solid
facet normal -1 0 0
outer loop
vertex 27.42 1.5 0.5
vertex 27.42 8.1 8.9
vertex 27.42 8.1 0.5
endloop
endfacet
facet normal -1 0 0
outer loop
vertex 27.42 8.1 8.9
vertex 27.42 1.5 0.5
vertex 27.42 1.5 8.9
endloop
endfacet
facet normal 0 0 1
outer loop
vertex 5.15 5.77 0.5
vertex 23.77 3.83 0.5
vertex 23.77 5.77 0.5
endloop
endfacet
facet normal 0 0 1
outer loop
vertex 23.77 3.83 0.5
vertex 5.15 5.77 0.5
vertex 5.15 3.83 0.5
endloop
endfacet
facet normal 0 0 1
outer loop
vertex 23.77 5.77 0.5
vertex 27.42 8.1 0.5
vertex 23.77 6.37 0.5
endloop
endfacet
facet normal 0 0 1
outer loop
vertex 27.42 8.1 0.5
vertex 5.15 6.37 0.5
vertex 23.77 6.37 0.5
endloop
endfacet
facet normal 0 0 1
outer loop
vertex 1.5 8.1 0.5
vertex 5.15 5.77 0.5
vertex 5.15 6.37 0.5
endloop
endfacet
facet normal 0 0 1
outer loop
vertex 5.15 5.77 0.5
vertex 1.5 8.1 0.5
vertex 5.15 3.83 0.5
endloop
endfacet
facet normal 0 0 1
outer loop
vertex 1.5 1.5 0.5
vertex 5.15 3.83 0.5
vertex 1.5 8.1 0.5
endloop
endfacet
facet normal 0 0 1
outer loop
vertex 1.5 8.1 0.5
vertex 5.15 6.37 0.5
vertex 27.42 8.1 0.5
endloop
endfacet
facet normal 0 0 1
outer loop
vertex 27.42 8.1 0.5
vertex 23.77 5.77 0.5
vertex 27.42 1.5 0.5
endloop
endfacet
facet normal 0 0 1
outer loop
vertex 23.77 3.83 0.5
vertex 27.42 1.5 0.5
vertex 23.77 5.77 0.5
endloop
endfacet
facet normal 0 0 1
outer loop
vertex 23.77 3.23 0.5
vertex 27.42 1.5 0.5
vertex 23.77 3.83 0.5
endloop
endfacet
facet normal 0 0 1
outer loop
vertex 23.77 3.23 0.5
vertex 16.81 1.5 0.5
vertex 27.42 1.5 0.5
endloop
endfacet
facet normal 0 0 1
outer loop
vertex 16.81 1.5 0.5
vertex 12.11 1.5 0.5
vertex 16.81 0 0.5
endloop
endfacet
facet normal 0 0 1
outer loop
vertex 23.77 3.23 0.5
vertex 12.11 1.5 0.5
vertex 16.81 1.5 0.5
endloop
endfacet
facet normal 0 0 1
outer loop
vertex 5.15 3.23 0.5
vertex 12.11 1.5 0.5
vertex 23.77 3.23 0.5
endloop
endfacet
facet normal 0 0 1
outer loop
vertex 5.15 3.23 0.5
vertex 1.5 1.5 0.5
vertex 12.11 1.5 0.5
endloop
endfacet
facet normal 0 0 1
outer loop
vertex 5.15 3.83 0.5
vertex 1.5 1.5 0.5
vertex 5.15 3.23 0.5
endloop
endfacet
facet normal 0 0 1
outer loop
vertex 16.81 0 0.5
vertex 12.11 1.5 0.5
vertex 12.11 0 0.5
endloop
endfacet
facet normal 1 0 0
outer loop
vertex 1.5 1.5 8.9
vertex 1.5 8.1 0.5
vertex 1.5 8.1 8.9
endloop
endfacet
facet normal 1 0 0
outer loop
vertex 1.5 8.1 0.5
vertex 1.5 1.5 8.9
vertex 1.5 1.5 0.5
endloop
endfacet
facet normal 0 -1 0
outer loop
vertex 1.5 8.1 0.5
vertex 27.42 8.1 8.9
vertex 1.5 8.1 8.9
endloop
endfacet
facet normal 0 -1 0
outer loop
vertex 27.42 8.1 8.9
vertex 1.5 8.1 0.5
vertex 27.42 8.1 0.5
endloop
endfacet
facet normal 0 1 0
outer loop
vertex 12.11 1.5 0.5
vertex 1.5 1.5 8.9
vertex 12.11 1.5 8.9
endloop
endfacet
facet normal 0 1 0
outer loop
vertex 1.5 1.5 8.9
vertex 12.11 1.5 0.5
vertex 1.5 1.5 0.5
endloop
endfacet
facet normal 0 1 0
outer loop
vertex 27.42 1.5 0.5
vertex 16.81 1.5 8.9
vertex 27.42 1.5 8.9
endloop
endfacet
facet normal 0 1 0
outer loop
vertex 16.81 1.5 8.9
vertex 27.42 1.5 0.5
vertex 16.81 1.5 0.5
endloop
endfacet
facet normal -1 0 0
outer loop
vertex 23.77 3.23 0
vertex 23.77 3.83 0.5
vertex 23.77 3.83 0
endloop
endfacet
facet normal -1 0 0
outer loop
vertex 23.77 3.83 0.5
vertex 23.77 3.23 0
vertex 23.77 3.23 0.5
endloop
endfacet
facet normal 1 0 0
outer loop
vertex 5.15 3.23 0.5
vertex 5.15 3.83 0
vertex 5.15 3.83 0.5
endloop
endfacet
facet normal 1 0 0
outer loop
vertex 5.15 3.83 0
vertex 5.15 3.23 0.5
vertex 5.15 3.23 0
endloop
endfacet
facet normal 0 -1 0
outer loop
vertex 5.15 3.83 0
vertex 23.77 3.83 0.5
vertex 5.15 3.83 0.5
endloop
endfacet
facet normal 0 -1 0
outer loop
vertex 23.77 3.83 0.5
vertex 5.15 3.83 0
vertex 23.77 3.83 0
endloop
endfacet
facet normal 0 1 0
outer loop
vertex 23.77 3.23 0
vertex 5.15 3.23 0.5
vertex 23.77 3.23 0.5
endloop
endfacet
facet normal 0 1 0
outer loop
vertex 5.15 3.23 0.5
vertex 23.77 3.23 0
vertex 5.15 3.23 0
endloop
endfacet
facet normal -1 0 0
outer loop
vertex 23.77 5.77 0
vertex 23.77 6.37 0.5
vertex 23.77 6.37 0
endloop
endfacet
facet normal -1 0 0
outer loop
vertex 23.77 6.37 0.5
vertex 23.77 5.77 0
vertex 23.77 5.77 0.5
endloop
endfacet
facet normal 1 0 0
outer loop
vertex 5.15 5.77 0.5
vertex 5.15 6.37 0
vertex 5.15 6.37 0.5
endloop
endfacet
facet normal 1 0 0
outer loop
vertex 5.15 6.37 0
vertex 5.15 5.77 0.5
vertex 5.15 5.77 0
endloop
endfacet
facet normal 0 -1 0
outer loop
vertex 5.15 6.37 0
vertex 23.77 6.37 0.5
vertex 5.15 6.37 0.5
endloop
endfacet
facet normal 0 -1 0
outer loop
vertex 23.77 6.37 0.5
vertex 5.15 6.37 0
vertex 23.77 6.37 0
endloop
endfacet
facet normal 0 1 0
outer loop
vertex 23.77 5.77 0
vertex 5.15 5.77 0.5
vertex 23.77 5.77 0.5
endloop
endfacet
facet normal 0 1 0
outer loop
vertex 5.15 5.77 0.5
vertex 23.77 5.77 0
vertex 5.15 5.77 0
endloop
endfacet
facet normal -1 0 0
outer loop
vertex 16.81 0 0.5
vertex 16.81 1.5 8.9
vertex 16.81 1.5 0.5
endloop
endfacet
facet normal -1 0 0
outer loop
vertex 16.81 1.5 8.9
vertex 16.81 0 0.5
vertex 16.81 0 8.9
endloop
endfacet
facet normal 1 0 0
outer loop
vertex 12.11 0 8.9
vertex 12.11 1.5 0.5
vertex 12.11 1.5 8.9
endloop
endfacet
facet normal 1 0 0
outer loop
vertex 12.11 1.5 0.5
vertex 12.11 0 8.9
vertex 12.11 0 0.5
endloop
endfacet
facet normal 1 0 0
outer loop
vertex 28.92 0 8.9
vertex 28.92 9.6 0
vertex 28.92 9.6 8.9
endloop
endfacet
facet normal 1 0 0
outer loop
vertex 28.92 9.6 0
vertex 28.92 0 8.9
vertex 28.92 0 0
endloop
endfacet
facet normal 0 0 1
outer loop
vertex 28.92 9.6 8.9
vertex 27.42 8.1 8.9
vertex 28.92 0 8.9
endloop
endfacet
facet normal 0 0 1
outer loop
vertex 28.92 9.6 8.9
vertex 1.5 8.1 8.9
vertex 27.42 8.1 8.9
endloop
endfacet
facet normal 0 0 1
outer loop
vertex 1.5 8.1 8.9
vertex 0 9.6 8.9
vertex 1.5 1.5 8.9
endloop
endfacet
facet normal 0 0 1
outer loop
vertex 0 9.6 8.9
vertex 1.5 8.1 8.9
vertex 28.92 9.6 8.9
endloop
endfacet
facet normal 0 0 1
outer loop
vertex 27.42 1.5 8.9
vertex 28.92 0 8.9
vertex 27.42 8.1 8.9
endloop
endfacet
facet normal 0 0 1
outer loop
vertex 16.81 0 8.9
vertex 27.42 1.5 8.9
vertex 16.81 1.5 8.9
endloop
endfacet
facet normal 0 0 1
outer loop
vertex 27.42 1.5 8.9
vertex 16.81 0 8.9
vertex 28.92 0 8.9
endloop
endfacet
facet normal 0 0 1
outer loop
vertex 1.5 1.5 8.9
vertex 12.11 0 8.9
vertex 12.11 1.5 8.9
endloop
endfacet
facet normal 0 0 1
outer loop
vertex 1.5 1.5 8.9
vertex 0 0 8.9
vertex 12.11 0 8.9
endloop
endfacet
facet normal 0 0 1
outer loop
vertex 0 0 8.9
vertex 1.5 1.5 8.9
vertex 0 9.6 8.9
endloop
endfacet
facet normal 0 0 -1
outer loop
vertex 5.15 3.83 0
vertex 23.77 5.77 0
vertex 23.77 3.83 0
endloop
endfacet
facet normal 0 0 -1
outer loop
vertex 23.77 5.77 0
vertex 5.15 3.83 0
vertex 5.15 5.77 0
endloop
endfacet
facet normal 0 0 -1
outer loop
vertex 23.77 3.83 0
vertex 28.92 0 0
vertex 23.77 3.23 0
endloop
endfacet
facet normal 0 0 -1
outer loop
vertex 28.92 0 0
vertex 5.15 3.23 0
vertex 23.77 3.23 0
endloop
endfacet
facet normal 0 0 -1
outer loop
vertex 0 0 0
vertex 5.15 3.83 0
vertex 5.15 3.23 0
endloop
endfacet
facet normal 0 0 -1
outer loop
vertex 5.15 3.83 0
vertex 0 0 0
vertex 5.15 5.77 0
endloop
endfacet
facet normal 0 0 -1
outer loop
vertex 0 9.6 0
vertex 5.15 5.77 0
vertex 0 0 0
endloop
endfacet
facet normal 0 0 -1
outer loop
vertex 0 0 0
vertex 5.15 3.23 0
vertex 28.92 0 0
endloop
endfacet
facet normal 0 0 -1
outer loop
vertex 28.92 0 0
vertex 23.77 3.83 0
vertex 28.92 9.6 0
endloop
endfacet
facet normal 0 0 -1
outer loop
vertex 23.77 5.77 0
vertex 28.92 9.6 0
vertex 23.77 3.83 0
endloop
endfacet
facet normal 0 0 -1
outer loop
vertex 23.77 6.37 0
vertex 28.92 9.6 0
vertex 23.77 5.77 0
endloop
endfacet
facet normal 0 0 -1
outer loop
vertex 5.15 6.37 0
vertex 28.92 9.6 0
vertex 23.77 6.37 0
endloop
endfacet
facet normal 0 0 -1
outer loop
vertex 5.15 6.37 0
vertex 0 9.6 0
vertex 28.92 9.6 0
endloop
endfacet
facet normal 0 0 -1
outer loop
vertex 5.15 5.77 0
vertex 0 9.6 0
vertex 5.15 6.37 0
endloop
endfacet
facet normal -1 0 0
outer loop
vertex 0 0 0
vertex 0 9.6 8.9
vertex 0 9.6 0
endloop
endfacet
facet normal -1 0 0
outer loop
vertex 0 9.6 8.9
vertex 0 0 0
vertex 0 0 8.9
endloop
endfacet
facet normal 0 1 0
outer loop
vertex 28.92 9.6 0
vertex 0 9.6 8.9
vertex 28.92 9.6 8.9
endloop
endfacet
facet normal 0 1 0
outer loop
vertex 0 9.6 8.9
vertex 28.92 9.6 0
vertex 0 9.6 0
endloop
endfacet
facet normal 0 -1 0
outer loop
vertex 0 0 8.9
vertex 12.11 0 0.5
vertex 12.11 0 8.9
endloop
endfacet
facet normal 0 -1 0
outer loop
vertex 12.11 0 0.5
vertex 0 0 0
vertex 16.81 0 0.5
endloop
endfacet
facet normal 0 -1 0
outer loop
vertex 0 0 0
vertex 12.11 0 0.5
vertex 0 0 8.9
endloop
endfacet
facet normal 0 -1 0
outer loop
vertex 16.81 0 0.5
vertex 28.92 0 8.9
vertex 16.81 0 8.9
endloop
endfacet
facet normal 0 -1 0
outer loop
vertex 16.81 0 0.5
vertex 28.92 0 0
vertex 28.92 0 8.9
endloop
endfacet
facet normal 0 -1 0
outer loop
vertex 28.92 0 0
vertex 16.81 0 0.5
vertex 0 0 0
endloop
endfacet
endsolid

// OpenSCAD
// IDC box connector frame for pin headers - WITH CENTER DIVIDER
// Based on design by John Stäck 2018
// Licensed under Creative Commons Attribution Share-alike 4.0 (CC BY-SA 4.0)
// https://creativecommons.org/licenses/by-sa/4.0/
//
// Modifications:
// - Changed bottom_thickness to 0.5mm
// - Added center divider on bottom surface

//Number of pins in one row of connector (half number of total pins)
n_pins = 8;

//How much to increase size of things to allow for good fit
printer_fudge = 0.2;

//Standard pin pitch
pin_pitch = 2.54;

//Pin size from C5383092 datasheet (SQ.0.64)
pin_size = 0.64;

//Tight clearance for 3D printed plastic (press-fit)
tight_clearance = 0.2;

//Dimensions of IDC connector
connector_length = 5.4+pin_pitch*n_pins;
connector_width = 6.4;

//Size of pin header base holes - TIGHT FIT based on actual pin dimensions
//Length: pin span + pin size + clearance
base_length = pin_pitch*(n_pins-1) + pin_size + tight_clearance;  // 17.78 + 0.64 + 0.2 = 18.62mm
//Width of each slot
slot_width = 0.6;  // Adjusted after print test (0.4 was too tight)

//Size of orientation tab
tab_width=4.5;
tab_height=5.5; //Arbitrary number. Have no specs on this

//Height of standard IDC box header.
height=8.9;

//The height of a regular pin header plastic base
// MODIFIED: Changed from pin_pitch (2.54mm) to 0.5mm
bottom_thickness=0.5;


//These are default sizes for the outside of the box
/*
outside_length = 7.6+pin_pitch*n_pins;
outside_width = 8.8;
*/

//Outside dimensions, a bit thicker for more sturdiness when printed.
wall_thickness = 1.5;

outside_length = connector_length + 2*wall_thickness + printer_fudge;
outside_width = connector_width + 2*wall_thickness + printer_fudge;

conn_length_actual = connector_length + printer_fudge;
conn_width_actual = connector_width + printer_fudge;

tab_width_actual = tab_width + printer_fudge;

// ADDED: Center divider - calculated from row spacing minus slot widths
// Divider fills the gap between the two pin row slots
divider_thickness = pin_pitch - slot_width;  // 2.54 - 0.84 = 1.7mm


difference() {
    cube([outside_length, outside_width, height]);

    //All the things "cut out" are from center origin to make things easier to follow
    translate([outside_length/2, outside_width/2, 0]) {

        //Hole for connector (single open cavity above bottom plate)
        translate([-conn_length_actual/2, -conn_width_actual/2, bottom_thickness])
            cube([conn_length_actual, conn_width_actual, height]);

        //Hole for pin header in base - ROW 1 (tight slot for first pin row)
        // Centered at -pin_pitch/2 from center (Y offset = -1.27mm)
        translate([-base_length/2, -pin_pitch/2 - slot_width/2, -0.1])
            cube([base_length, slot_width, bottom_thickness + 0.2]);

        //Hole for pin header in base - ROW 2 (tight slot for second pin row)
        // Centered at +pin_pitch/2 from center (Y offset = +1.27mm)
        translate([-base_length/2, pin_pitch/2 - slot_width/2, -0.1])
            cube([base_length, slot_width, bottom_thickness + 0.2]);

        //Tab (key notch for IDC connector) - extends from bottom plate to top
        //Bottom plate remains intact at tab end (no foot separator)
        translate([-tab_width_actual/2, -outside_width, bottom_thickness])
            cube([tab_width_actual, outside_width, height]);

    }

}
